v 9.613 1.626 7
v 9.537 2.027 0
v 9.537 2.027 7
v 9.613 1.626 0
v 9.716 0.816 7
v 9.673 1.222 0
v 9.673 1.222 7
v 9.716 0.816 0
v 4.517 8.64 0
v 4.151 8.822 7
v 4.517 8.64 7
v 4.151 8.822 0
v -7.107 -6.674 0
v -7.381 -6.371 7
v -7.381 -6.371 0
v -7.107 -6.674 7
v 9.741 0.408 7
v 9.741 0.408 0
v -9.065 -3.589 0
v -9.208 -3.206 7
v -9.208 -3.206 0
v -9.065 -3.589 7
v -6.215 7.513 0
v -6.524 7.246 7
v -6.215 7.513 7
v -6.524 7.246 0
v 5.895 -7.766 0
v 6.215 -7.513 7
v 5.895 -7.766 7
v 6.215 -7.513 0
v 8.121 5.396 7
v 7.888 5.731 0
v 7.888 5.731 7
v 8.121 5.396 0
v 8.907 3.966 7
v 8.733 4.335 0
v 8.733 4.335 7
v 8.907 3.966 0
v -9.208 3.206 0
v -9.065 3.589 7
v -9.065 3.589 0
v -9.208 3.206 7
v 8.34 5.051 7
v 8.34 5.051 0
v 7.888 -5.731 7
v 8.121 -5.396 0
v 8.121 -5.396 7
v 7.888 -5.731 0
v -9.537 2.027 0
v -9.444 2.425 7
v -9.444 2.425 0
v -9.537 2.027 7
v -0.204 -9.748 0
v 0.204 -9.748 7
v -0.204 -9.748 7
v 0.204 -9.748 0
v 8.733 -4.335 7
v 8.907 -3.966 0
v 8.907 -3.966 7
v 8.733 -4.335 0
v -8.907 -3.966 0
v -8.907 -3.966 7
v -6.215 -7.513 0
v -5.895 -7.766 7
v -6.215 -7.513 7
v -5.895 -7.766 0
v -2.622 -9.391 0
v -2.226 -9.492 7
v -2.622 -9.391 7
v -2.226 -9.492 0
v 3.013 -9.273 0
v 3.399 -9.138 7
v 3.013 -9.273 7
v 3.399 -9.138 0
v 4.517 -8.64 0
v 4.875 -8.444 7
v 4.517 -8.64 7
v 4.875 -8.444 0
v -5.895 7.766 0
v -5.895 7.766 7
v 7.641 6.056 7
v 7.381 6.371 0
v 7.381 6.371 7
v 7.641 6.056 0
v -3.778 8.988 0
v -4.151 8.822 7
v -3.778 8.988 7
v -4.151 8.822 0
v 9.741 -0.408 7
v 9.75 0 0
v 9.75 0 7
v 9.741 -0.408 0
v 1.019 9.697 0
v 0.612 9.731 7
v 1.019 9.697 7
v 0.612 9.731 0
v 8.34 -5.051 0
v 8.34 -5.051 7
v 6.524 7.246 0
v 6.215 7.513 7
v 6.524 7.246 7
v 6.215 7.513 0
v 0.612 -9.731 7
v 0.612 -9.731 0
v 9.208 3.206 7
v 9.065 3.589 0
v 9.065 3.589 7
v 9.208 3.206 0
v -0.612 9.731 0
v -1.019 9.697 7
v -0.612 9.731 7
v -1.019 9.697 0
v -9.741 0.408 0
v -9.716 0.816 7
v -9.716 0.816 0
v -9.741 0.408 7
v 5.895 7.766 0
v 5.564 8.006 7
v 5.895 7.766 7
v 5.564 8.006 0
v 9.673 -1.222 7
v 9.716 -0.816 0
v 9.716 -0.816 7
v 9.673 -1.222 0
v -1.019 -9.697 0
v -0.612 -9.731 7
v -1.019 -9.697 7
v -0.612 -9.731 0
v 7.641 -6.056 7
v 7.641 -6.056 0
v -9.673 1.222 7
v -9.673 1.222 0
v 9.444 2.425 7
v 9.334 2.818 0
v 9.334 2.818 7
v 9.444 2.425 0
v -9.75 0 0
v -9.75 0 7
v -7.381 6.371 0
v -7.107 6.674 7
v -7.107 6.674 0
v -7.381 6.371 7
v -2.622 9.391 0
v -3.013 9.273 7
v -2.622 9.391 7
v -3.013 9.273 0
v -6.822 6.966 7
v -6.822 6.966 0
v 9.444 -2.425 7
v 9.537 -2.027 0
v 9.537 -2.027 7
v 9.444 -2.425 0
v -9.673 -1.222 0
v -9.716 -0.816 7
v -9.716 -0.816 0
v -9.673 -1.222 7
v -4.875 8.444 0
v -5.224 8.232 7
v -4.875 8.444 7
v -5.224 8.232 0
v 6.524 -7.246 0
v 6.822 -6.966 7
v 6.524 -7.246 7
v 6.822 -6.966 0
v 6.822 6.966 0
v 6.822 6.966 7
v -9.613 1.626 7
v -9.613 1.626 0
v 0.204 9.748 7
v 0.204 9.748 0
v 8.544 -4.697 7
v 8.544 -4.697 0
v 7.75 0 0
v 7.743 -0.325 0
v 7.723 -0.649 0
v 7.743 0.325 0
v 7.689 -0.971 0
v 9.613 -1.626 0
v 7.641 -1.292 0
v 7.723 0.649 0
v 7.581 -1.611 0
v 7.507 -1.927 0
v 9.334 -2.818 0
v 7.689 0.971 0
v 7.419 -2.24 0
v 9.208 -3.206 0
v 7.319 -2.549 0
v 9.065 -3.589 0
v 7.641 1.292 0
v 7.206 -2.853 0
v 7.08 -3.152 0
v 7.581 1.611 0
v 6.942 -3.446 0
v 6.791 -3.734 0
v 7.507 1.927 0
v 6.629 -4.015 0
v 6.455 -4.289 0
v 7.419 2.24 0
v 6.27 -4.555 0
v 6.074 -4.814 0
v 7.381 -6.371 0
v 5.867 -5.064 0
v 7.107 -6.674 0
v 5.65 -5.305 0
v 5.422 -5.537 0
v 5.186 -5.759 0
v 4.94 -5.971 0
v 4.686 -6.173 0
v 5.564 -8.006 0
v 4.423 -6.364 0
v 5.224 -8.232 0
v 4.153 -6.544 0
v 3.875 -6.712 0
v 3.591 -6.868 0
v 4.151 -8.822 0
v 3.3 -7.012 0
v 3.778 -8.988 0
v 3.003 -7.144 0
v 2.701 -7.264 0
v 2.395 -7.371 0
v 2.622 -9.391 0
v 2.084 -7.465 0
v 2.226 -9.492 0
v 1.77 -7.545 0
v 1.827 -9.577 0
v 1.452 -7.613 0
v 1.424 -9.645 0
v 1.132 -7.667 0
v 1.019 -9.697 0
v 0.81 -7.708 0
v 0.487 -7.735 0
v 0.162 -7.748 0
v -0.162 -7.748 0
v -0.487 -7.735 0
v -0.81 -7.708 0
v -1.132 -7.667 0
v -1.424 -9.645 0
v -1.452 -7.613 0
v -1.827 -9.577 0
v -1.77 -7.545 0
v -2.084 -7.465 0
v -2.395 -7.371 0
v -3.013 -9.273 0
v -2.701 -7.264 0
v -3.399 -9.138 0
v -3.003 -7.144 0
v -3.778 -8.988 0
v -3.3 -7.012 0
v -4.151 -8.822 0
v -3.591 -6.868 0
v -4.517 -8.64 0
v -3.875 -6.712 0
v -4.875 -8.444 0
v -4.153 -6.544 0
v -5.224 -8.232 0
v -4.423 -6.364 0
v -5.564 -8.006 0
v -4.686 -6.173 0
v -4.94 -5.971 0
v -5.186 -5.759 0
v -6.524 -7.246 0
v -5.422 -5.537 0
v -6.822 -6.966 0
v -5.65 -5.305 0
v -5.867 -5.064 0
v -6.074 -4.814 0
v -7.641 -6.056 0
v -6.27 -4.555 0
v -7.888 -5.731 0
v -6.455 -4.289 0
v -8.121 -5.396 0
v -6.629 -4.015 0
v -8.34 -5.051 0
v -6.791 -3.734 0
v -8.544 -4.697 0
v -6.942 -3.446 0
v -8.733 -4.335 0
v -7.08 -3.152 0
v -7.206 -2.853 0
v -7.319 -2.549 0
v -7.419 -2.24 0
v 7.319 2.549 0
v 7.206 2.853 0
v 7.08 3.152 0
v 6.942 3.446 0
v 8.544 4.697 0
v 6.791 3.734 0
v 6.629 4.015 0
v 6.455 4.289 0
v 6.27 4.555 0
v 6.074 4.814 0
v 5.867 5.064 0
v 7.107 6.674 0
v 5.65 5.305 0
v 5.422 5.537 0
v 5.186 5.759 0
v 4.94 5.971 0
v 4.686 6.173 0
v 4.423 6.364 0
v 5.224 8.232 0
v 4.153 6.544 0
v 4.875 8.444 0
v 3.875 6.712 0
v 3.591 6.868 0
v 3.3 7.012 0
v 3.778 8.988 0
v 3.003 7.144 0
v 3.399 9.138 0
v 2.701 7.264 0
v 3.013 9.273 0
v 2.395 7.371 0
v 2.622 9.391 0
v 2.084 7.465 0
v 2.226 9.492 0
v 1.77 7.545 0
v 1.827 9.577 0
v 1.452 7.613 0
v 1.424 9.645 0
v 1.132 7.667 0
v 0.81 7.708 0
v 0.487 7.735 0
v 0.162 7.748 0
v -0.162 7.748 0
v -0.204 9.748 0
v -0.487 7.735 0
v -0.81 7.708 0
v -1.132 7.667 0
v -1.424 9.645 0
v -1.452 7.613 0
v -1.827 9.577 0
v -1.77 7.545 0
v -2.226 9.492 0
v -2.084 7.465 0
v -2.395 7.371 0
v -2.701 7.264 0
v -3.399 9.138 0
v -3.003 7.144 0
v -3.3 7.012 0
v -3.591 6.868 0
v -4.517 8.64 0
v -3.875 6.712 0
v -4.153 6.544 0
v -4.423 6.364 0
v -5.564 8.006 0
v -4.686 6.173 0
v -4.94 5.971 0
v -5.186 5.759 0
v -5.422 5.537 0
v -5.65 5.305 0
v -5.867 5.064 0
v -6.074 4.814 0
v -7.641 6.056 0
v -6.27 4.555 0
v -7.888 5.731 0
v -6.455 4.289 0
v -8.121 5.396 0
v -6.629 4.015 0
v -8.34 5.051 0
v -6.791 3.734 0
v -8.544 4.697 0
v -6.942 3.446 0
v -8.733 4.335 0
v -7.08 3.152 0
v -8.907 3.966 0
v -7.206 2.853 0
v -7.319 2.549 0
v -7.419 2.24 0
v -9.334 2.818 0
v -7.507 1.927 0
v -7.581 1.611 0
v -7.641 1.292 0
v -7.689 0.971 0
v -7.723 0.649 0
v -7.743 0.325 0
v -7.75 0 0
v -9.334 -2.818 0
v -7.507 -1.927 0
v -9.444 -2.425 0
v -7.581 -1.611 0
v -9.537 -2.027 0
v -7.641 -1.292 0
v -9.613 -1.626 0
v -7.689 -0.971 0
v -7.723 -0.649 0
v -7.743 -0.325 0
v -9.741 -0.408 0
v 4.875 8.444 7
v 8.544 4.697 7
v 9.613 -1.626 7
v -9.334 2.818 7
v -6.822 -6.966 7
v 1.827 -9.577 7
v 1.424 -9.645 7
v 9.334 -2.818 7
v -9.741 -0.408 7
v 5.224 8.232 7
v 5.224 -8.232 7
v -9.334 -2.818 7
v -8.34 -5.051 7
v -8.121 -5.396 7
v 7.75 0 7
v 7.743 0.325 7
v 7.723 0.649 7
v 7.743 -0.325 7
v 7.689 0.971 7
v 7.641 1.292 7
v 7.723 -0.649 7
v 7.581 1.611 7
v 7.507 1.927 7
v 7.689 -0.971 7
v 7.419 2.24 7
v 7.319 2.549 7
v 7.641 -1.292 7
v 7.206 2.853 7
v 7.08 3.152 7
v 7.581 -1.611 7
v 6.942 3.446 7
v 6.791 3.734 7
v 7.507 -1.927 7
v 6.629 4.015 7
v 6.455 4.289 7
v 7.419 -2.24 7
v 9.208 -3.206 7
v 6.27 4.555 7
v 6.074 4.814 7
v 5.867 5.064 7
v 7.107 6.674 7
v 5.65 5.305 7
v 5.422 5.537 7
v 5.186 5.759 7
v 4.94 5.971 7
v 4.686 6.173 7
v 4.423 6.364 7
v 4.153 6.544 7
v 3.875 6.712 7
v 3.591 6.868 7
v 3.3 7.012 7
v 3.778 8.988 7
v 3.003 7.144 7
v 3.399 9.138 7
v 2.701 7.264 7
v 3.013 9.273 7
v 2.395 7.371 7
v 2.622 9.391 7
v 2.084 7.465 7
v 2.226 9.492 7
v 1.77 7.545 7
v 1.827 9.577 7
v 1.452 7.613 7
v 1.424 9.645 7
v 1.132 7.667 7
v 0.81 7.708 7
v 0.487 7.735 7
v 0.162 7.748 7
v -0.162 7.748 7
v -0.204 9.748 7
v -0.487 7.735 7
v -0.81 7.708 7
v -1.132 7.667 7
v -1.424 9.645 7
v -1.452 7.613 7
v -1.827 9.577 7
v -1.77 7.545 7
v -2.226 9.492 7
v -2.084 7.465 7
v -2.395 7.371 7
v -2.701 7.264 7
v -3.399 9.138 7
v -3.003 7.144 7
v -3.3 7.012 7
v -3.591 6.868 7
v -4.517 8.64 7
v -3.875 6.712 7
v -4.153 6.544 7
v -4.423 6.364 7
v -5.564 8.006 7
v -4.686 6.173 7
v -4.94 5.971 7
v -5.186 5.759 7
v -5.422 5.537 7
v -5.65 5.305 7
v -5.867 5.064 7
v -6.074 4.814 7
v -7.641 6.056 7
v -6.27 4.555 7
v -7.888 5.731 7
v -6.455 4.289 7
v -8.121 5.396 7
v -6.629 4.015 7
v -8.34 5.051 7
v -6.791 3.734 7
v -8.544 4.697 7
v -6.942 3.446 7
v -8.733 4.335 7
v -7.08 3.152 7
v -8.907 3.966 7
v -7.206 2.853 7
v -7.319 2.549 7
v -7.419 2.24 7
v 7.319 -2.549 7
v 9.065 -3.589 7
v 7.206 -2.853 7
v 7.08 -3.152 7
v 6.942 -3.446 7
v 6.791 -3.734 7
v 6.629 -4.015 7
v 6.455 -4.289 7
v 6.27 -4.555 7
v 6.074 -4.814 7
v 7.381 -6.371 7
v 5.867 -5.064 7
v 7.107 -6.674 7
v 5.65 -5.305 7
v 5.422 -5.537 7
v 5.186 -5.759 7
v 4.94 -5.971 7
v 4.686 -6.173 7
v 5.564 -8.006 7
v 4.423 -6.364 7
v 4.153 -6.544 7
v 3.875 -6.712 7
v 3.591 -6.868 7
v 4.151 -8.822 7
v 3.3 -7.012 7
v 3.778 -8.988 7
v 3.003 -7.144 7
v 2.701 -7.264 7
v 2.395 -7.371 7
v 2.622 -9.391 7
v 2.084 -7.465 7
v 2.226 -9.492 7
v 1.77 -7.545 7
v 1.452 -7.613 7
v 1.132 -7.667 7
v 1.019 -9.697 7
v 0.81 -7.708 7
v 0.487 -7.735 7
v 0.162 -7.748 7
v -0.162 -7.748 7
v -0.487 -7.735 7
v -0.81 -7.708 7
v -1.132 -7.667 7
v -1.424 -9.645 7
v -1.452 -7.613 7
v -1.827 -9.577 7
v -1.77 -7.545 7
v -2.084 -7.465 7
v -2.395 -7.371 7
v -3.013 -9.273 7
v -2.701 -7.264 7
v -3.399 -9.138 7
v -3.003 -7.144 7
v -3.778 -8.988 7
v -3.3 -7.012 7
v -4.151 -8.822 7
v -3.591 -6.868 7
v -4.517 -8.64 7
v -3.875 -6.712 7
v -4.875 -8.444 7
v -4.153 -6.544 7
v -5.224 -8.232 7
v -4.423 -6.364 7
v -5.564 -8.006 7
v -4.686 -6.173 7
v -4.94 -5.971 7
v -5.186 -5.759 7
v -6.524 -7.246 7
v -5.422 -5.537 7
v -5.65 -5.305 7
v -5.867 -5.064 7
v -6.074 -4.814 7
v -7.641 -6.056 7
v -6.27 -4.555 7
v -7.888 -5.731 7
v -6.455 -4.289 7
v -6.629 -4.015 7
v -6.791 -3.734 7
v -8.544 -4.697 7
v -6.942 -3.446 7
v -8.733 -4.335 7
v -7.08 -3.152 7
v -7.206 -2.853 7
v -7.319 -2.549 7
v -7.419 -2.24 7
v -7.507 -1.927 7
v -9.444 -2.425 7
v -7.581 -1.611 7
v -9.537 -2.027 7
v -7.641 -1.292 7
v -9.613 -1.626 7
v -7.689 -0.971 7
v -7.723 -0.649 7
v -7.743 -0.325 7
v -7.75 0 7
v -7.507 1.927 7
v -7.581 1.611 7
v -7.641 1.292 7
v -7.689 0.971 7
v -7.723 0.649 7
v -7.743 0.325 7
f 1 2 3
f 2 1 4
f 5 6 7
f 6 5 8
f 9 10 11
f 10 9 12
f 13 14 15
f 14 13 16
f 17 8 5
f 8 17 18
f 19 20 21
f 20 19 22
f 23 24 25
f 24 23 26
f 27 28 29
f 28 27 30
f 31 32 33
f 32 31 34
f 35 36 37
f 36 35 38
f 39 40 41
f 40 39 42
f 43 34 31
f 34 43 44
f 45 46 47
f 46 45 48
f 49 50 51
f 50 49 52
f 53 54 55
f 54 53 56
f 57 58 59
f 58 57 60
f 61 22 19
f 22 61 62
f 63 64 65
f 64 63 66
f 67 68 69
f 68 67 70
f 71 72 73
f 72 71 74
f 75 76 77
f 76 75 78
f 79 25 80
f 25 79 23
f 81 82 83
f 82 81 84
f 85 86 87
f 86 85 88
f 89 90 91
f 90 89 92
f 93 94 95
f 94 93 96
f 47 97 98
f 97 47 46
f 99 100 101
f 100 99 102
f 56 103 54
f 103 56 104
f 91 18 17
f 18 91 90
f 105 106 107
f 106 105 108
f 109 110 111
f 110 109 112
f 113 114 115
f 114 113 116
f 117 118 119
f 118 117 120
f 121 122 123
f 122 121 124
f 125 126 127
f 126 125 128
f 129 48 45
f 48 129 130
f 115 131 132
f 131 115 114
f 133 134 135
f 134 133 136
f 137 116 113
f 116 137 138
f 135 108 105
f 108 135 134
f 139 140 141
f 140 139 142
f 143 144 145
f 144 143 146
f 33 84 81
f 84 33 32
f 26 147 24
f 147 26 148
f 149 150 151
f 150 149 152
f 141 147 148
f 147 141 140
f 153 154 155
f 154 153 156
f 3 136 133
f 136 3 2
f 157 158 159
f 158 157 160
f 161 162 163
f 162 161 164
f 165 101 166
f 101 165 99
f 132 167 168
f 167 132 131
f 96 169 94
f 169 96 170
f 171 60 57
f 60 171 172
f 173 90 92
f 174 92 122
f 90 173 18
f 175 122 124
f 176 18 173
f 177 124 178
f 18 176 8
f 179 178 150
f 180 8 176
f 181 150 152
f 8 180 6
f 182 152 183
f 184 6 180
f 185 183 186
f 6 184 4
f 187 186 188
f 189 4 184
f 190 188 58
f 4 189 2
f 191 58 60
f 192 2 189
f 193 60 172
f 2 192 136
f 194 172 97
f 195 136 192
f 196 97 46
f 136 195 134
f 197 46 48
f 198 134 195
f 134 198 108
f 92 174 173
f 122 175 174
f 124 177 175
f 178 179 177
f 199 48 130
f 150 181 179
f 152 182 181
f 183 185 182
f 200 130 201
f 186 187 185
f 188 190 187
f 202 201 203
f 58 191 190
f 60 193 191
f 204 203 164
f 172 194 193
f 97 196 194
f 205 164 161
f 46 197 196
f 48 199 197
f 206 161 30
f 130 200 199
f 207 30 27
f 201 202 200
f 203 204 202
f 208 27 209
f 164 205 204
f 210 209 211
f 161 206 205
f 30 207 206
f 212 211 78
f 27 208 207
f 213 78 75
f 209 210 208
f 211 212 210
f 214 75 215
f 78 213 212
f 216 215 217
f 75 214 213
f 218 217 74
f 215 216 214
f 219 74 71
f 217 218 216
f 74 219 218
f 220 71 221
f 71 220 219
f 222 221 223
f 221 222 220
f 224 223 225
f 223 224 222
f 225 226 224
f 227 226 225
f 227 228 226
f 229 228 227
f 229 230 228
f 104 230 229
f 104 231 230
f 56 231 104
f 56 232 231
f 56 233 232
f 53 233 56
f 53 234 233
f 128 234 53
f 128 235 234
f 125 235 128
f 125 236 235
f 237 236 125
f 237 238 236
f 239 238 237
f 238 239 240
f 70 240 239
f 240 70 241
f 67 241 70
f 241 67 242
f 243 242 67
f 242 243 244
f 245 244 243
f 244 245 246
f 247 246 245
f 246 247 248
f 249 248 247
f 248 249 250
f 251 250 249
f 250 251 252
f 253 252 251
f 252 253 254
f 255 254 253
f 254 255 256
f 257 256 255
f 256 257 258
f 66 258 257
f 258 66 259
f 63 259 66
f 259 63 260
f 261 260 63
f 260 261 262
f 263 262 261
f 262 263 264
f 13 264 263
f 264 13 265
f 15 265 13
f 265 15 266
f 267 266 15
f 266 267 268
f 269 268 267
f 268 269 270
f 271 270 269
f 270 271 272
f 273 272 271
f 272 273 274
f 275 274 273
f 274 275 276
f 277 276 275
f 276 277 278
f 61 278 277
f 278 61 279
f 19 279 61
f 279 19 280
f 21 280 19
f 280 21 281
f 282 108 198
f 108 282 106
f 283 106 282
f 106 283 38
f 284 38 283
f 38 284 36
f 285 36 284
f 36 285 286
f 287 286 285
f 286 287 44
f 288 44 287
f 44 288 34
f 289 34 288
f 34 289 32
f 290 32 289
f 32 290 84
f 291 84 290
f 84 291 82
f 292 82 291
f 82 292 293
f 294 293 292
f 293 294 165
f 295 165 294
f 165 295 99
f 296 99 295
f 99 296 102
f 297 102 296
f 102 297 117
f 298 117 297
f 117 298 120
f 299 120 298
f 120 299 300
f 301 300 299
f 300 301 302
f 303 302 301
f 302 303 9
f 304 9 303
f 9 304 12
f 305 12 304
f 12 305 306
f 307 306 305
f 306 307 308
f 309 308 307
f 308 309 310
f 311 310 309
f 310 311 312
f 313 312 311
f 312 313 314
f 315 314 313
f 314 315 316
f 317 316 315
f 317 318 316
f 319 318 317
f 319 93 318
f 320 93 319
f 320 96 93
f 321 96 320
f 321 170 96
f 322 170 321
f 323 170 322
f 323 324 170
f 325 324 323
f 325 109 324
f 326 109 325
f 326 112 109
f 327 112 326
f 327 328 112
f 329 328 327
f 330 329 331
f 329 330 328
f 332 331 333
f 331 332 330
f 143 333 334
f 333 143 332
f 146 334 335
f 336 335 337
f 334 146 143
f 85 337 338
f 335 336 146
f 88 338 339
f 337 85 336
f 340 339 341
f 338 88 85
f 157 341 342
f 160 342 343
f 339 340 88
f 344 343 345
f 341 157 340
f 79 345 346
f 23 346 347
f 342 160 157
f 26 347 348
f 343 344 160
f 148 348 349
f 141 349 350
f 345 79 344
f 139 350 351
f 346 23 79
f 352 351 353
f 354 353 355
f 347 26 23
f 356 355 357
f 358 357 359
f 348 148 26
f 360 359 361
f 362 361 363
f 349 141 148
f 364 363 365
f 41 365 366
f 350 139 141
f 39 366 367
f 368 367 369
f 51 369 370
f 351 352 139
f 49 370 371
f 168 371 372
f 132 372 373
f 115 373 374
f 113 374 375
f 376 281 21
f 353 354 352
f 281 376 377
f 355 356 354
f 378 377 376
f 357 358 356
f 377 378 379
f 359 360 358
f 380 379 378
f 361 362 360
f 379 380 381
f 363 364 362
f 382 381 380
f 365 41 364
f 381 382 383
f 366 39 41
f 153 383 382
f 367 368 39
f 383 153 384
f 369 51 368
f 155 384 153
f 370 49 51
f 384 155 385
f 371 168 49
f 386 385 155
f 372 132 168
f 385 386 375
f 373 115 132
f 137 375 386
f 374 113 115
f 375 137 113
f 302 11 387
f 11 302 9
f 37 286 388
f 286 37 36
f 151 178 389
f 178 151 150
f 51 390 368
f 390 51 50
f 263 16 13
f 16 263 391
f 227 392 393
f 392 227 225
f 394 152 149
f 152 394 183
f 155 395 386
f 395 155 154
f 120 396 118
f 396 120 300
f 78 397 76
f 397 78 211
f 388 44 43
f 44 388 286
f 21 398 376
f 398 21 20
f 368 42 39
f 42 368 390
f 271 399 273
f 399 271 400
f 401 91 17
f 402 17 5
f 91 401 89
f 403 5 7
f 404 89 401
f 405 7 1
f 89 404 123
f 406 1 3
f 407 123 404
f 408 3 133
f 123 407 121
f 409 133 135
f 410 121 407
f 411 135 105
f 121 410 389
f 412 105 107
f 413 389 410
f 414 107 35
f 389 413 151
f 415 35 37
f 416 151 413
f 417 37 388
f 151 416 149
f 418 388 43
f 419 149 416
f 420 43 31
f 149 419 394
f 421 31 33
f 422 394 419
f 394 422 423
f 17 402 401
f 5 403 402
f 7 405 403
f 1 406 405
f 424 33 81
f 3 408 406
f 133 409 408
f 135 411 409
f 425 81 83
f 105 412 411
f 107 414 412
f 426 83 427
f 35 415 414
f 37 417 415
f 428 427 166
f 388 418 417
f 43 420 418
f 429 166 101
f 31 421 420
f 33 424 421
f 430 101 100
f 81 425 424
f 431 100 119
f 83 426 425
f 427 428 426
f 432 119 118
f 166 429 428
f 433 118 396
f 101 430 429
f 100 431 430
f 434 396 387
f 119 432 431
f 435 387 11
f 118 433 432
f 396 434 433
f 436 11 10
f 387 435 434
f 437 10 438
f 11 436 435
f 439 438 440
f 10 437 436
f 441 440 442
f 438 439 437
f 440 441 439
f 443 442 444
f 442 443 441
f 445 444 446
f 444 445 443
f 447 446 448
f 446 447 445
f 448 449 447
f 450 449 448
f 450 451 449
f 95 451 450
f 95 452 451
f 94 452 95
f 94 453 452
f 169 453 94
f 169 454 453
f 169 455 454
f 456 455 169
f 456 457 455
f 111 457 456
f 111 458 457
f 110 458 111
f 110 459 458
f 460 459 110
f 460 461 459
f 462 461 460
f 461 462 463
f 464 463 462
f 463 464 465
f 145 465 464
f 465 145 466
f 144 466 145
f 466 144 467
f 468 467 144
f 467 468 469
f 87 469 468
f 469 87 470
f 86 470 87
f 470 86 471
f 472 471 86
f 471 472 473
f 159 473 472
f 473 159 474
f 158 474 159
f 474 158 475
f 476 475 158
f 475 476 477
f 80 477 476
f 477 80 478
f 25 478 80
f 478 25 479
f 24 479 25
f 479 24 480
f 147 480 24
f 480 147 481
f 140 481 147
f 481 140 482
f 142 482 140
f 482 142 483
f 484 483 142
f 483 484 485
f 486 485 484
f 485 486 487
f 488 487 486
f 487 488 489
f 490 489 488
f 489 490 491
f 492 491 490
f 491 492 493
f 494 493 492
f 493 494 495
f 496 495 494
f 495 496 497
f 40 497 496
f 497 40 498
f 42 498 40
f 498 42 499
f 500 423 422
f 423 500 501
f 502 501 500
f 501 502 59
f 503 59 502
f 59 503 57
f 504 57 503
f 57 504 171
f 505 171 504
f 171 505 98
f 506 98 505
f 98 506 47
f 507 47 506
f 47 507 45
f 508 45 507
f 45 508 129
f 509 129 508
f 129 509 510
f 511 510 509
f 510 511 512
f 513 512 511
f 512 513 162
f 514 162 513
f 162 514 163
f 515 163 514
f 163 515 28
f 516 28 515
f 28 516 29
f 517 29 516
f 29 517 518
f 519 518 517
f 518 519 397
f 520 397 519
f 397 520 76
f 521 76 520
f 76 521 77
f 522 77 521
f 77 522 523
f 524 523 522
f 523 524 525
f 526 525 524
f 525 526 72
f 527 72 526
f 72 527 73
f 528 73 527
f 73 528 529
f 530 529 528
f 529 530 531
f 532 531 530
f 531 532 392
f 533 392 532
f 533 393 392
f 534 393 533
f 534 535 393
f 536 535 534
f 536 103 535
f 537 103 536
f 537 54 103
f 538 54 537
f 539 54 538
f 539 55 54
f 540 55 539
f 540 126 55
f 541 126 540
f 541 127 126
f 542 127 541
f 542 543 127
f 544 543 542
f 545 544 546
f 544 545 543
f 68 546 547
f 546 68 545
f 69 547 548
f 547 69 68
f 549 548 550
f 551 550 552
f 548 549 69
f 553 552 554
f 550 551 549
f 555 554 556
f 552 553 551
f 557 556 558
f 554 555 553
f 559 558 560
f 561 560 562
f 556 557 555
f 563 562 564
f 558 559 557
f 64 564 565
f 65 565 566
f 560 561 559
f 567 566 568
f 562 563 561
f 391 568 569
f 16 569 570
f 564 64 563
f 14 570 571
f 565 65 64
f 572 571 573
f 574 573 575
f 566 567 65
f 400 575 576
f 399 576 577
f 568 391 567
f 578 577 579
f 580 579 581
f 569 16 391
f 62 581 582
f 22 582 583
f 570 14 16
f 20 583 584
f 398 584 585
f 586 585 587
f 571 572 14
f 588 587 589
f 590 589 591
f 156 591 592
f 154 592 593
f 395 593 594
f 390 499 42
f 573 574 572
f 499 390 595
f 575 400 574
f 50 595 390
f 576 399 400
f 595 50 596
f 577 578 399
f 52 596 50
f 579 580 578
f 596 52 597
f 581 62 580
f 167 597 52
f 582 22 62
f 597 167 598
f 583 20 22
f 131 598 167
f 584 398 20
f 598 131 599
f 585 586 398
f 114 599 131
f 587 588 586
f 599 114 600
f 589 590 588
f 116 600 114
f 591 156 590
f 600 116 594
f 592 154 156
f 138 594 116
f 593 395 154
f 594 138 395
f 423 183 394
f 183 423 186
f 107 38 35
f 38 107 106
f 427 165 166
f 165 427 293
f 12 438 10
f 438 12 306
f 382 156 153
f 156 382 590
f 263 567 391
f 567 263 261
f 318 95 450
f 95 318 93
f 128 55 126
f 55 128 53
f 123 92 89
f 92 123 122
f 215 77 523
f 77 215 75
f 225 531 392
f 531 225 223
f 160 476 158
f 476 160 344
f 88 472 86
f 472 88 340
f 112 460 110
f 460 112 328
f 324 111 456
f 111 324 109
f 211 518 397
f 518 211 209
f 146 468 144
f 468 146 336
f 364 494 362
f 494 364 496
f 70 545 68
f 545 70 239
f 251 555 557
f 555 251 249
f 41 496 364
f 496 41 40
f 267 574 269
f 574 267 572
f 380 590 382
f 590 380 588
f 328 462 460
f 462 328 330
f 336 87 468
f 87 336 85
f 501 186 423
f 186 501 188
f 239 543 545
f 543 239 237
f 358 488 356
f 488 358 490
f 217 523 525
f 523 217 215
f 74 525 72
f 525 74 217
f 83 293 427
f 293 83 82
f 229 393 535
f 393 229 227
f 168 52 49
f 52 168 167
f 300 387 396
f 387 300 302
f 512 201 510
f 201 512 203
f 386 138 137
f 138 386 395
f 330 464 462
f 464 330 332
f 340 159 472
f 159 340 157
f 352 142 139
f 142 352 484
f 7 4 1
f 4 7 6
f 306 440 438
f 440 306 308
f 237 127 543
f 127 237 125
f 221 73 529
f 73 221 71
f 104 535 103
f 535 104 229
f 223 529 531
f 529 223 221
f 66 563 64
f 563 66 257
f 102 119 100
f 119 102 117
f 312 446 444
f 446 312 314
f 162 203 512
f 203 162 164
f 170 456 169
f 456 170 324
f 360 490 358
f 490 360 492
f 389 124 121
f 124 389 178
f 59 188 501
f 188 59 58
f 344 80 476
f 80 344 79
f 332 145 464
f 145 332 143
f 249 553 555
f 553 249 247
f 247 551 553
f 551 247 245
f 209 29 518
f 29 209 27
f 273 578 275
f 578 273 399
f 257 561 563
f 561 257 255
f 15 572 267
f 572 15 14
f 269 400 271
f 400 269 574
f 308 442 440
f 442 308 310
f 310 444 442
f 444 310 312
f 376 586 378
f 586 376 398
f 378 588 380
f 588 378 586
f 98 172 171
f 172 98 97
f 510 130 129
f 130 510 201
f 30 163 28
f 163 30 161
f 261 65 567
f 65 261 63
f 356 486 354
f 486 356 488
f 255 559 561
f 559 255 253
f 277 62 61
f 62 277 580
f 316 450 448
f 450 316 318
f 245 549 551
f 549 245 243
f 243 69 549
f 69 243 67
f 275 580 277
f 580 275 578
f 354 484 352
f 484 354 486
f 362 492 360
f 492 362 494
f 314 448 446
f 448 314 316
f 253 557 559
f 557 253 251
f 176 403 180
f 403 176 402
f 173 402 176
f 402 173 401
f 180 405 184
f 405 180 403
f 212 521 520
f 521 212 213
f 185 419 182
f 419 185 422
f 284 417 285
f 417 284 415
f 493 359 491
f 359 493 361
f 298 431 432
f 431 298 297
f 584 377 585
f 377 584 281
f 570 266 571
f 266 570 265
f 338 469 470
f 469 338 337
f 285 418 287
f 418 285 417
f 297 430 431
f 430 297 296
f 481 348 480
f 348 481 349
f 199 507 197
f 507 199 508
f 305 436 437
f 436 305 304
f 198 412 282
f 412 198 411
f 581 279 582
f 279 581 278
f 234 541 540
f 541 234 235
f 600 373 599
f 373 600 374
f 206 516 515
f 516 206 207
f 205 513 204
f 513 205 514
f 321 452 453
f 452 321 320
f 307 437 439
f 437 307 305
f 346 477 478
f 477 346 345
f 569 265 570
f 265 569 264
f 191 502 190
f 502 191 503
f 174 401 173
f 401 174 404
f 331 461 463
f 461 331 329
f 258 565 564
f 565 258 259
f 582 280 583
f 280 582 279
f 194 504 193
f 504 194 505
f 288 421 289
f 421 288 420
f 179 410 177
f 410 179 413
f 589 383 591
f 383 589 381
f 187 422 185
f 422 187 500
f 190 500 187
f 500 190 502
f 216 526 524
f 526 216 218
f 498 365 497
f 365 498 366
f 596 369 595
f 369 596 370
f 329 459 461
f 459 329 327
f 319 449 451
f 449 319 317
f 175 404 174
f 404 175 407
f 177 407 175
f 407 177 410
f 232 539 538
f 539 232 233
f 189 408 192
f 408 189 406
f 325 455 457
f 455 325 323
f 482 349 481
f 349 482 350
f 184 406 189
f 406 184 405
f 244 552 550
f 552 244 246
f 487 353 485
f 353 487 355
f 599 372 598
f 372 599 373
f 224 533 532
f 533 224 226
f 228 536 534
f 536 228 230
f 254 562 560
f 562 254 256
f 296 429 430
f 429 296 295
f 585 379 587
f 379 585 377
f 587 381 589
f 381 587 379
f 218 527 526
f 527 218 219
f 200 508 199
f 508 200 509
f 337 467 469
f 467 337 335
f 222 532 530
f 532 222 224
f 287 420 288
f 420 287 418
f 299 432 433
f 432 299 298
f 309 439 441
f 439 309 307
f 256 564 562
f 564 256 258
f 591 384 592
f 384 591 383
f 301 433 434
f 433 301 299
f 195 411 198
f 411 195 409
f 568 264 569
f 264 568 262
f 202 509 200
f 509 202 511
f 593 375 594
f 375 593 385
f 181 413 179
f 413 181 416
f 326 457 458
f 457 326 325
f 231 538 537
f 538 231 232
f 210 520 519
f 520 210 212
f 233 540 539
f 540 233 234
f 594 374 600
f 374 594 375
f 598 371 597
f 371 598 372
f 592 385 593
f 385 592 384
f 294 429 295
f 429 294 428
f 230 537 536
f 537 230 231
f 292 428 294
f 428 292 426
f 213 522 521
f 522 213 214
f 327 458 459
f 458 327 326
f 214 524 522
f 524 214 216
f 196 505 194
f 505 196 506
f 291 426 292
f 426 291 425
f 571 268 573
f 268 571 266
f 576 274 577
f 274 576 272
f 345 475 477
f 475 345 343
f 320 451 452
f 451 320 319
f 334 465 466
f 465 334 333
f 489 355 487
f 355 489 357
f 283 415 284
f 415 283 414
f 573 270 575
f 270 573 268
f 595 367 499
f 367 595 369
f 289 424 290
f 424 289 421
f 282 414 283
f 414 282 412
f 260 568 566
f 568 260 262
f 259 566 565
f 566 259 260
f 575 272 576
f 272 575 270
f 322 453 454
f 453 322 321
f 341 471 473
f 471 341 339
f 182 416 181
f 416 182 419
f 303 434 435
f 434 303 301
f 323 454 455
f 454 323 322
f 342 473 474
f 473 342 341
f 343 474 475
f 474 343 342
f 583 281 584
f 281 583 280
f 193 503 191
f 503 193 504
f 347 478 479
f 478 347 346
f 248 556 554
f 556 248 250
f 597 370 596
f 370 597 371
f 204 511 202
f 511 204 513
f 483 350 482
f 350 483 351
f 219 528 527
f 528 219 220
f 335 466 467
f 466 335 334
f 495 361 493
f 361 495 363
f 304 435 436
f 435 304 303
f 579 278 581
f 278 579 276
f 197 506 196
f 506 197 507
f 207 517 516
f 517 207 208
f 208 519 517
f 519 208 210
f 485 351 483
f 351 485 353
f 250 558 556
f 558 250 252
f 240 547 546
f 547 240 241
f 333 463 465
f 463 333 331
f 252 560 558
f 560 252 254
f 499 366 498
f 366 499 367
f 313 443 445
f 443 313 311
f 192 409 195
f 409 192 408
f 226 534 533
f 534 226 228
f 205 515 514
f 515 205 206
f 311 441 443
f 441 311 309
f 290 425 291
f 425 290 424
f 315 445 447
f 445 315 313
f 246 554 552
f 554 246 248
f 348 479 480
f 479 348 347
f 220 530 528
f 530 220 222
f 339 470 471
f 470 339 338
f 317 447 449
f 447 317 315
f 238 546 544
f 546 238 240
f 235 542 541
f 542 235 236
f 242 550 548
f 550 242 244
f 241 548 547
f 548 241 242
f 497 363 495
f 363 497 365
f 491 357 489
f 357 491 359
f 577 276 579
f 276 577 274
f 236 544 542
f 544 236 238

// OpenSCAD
/* [Export] */


/* [Hidden] */
$fn = 150;

wall_thickness = 2.0;
shaft_height = 13.0;

spacer_inner_diameter = 15.5;
spacer_outer_diameter = spacer_inner_diameter + 4.0;

spacer_height = shaft_height - wall_thickness - 4.0;

difference()
{
	cylinder(spacer_height, d=spacer_outer_diameter, center=false);

	translate([0, 0, -1])
	cylinder(spacer_height + 2, d=spacer_inner_diameter, center=false);	
}
